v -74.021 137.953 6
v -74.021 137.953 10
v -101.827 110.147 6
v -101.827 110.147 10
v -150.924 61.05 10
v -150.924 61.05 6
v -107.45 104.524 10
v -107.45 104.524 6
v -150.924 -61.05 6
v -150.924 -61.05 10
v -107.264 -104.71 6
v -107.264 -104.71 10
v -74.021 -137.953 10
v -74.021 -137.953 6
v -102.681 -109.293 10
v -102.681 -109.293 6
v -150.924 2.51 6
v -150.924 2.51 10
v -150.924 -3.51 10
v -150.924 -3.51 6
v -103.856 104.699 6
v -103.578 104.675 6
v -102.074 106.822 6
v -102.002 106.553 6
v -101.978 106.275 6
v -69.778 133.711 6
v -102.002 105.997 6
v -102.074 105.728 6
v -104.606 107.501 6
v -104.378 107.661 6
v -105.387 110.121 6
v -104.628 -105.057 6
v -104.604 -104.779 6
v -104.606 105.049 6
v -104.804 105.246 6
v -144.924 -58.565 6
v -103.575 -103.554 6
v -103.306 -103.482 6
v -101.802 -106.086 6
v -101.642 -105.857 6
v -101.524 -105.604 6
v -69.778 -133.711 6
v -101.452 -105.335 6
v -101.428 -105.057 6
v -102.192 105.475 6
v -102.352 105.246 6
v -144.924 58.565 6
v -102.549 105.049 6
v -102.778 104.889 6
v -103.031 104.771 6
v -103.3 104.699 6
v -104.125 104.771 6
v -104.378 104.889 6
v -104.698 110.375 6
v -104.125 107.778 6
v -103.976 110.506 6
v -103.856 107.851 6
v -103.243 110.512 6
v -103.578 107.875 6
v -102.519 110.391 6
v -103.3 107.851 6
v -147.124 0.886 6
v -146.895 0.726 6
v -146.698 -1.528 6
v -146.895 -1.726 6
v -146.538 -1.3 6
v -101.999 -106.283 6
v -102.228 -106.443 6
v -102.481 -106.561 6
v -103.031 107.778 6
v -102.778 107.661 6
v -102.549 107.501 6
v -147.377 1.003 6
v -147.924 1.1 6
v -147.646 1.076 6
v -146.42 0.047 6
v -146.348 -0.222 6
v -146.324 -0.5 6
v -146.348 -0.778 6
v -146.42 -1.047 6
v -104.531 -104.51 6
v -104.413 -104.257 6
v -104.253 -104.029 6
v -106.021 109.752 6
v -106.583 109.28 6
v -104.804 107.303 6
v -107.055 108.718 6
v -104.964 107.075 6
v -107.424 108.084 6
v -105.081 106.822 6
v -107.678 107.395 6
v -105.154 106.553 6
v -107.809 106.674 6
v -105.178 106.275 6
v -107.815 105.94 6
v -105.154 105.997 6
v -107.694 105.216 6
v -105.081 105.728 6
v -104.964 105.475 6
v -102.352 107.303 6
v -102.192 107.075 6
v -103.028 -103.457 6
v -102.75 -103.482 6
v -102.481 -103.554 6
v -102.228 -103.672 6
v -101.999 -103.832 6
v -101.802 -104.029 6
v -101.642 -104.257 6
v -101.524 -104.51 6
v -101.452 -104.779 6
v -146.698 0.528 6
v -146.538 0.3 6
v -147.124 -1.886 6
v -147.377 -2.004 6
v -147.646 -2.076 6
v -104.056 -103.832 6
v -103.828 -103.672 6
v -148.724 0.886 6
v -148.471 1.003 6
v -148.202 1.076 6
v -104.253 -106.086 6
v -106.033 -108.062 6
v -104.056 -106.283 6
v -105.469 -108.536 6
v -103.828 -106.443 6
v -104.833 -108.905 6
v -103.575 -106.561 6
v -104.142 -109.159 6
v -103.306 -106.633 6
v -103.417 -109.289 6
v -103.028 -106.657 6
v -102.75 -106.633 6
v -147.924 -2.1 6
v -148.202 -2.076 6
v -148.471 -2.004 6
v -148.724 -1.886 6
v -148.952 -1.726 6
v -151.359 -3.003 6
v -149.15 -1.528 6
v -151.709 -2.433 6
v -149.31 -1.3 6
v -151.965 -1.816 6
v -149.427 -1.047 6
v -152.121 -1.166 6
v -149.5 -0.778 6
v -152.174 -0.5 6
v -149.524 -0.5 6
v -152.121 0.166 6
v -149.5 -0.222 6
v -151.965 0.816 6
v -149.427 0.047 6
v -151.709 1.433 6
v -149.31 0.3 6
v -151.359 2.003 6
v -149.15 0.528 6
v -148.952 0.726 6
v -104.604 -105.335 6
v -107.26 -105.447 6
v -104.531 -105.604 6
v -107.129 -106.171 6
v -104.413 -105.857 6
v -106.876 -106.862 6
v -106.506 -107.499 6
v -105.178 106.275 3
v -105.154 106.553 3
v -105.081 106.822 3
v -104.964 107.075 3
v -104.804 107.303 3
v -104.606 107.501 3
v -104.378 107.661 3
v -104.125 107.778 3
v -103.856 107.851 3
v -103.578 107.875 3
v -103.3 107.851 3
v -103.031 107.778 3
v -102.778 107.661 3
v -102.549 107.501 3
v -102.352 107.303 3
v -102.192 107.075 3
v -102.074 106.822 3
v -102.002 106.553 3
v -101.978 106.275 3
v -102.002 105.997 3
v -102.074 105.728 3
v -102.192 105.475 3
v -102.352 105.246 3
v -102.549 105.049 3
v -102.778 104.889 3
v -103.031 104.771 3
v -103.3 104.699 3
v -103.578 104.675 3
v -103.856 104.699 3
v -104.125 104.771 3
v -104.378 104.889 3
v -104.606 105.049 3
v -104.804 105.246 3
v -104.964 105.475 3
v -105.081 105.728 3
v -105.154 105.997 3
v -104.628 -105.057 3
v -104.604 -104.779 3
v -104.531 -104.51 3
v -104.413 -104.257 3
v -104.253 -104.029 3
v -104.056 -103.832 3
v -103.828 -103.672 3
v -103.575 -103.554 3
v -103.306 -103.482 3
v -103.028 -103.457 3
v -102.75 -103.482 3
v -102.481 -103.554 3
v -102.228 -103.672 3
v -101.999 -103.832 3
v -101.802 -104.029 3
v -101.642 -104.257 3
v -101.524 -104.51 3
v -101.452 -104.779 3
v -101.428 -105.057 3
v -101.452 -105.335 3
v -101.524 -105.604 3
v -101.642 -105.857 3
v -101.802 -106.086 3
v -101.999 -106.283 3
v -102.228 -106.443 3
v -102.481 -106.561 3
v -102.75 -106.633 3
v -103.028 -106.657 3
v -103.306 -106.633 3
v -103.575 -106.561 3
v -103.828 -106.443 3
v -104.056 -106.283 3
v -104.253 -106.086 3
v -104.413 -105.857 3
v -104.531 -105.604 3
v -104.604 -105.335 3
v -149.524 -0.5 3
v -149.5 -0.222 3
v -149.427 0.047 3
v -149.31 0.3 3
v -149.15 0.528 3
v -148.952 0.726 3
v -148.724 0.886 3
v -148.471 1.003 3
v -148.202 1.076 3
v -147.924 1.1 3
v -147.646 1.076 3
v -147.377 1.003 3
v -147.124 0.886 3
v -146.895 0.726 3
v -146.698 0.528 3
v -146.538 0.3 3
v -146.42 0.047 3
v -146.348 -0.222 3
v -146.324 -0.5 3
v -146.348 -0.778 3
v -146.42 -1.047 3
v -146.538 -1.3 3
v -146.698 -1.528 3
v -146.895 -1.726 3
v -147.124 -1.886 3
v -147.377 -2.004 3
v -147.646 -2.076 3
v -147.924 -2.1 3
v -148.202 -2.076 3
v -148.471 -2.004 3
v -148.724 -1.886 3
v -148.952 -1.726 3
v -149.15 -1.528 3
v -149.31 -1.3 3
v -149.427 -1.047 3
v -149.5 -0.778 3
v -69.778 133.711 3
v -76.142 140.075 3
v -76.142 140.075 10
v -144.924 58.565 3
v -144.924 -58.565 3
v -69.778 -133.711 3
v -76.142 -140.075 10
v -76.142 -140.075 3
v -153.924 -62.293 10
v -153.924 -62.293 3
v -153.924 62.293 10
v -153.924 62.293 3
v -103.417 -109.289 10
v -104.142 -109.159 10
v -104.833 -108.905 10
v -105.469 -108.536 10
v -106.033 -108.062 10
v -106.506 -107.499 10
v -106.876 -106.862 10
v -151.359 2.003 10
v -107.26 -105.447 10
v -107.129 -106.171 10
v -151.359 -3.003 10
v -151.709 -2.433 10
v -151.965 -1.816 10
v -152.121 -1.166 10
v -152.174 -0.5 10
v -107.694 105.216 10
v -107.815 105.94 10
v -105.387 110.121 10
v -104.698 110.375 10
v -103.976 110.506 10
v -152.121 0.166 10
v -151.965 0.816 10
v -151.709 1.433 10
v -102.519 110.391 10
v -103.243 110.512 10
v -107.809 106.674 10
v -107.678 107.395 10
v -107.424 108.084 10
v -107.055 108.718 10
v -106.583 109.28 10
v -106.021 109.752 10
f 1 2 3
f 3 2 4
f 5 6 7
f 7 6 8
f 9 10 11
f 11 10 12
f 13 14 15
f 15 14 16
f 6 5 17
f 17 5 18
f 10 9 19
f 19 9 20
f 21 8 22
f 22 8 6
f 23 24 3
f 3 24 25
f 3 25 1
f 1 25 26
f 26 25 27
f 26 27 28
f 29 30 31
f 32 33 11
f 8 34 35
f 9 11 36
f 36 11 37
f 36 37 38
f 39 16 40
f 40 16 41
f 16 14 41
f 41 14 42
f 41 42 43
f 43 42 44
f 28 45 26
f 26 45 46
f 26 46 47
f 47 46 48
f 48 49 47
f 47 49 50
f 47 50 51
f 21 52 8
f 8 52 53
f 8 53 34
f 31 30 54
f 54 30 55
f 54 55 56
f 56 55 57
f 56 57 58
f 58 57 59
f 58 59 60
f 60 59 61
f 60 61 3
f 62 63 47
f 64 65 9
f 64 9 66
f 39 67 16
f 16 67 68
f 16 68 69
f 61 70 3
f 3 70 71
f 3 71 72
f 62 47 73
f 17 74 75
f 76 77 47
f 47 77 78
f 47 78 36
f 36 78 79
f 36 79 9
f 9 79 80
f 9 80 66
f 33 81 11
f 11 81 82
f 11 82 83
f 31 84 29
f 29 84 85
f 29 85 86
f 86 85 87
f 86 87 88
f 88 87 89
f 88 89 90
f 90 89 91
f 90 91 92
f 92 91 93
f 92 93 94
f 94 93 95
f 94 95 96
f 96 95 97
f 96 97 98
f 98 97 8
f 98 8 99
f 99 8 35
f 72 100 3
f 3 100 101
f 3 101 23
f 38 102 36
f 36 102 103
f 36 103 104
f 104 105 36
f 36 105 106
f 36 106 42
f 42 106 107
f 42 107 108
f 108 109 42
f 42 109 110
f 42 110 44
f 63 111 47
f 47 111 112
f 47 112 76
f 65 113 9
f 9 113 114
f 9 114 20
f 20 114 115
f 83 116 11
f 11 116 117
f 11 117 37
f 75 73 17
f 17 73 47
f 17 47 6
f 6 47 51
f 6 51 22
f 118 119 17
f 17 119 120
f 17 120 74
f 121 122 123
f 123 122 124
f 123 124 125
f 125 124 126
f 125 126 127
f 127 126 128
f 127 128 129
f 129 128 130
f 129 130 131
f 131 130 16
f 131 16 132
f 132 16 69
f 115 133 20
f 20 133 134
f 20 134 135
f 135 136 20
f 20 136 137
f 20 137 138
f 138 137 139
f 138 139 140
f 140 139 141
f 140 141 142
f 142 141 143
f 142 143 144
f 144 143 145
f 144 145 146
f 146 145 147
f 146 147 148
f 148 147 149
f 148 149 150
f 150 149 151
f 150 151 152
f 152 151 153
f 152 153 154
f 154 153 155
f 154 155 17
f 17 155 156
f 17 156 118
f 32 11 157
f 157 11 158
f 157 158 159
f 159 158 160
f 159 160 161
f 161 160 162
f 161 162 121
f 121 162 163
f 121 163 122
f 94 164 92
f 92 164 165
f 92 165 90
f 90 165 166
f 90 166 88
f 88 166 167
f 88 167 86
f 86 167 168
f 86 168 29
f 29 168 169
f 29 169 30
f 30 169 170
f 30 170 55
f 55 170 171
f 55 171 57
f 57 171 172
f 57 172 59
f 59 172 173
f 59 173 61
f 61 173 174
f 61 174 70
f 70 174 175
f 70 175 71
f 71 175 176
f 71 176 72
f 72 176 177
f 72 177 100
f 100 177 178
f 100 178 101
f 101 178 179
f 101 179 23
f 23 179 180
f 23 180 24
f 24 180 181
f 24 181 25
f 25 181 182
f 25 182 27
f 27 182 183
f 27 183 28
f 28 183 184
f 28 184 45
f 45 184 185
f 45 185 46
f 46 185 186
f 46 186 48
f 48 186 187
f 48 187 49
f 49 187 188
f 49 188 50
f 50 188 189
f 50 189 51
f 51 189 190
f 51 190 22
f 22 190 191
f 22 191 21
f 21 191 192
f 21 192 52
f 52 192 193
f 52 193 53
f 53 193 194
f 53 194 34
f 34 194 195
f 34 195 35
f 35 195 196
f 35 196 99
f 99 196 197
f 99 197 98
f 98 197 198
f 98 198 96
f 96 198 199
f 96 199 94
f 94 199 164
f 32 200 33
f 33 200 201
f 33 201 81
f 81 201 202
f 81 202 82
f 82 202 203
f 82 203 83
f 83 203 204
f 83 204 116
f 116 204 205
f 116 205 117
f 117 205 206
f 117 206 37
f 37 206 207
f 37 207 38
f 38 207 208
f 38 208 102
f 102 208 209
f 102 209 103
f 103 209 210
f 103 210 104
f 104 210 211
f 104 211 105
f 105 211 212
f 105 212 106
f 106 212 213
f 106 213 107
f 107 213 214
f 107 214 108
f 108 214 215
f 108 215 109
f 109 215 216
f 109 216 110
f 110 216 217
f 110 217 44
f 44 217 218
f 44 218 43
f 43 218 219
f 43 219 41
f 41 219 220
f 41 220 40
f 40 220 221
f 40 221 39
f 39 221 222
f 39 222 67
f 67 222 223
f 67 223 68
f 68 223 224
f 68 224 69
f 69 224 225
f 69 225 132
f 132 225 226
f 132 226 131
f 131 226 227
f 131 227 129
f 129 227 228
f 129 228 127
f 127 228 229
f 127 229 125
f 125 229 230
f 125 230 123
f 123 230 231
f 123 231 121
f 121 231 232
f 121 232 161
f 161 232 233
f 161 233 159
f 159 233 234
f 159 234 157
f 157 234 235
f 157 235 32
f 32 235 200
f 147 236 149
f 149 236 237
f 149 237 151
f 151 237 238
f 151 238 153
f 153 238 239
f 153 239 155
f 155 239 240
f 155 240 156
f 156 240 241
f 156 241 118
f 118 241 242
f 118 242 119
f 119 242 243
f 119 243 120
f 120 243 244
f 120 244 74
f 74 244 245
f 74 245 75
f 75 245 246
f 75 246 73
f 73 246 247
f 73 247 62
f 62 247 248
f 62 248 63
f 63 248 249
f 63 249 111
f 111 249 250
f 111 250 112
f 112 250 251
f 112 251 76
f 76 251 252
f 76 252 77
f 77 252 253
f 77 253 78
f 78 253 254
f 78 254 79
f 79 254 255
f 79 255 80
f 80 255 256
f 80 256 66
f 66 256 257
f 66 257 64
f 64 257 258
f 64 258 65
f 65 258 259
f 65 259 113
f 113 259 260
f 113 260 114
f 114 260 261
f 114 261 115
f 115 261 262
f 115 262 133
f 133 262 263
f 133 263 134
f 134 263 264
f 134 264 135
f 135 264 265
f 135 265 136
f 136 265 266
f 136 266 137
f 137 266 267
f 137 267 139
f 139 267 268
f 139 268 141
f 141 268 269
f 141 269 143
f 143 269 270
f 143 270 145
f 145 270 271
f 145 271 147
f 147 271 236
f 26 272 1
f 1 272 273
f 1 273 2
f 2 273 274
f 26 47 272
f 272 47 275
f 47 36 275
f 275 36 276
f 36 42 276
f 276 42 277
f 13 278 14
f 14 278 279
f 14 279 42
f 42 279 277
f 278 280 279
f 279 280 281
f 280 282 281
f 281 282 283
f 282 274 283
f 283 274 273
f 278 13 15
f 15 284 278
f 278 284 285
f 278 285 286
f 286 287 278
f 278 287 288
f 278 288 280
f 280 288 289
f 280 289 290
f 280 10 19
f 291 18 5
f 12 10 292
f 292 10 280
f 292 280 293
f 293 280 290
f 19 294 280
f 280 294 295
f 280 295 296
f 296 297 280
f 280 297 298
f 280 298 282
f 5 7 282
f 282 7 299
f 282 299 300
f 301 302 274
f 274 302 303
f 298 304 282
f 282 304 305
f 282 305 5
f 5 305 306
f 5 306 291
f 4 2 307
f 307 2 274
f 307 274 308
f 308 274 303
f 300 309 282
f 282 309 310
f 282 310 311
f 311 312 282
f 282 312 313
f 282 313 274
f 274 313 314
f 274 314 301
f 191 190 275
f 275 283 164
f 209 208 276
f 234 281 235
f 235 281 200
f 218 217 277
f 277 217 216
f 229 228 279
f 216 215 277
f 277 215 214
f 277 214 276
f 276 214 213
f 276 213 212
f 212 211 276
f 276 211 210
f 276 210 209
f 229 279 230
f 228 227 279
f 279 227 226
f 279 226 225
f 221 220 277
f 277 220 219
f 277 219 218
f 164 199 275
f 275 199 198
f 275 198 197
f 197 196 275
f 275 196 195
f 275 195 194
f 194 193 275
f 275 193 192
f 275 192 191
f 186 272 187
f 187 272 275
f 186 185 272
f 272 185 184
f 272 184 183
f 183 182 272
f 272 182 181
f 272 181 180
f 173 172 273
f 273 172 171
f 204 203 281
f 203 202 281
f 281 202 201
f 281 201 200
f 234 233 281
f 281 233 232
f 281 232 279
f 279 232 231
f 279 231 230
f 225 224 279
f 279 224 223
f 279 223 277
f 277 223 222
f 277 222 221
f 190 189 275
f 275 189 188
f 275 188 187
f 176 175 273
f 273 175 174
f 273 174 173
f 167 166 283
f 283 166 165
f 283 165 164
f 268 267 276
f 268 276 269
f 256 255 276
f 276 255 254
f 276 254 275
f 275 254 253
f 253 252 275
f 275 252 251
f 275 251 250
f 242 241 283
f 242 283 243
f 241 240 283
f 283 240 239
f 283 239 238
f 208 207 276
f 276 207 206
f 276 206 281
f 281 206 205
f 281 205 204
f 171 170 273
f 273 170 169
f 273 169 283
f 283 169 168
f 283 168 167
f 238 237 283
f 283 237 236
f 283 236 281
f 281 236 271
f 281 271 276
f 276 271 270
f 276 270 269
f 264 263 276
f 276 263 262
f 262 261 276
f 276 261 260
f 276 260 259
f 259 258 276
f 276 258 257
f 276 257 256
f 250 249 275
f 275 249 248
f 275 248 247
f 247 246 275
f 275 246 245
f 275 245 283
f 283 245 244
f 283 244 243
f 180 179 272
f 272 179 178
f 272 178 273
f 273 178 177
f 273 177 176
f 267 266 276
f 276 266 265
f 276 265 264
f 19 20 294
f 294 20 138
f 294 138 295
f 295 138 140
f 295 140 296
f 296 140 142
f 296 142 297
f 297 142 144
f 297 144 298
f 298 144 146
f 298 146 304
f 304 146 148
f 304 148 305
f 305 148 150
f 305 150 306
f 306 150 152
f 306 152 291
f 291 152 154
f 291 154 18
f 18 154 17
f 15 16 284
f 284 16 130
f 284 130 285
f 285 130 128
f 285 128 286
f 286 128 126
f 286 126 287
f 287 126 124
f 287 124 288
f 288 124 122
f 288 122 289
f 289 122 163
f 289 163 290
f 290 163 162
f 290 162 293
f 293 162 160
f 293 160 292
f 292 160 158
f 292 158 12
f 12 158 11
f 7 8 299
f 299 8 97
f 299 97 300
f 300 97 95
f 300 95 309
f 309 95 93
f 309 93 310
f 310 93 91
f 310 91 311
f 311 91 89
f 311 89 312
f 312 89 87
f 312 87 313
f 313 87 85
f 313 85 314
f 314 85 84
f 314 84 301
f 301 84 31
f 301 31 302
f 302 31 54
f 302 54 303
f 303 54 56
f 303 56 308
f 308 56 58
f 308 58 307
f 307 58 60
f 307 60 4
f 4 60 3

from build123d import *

# Parameters (mm, degrees)
SHEET_EXTRUSION_DEPTH           = 3
ESQUISSE_TROU_ROUE_DROITE_W     = 70
ESQUISSE_TROU_ROUE_DROITE_H     = 40
LEFTWHEEL_EXTRUSION_DEPTH       = 219.408952171
ESQUISSE20_W                    = 30
ESQUISSE20_H                    = 17
LEFTFREEWHEEL_HOLE_DEPTH        = 219.408952171
LEFTWHEEL_FIX_OUTLINE_R         = 2.5
LEFTWHEEL_FIX_DEPTH             = 3
BALL_EXTRUSION_OUTLINE_R        = 12
BALL_EXTRUSION_DEPTH            = 3
ARROUND_FIX_EXTRUSION_OUTLINE_R = 2.5
ARROUND_FIX_EXTRUSION_DEPTH     = 3
LEFT_PROFILE_HOLE_OUTLINE_R     = 2.5
LEFT_PROFILE_HOLE_DEPTH         = 3
LEFT_FIX_MECA_SKETCH_R          = 1.5
LEFT_FIX_MECA_EXTRUSION_DEPTH   = 219.408952171
LEFT_CODER_HOLES_SKETCH_R       = 1.5
LEFT_CODER_HOLES_DEPTH          = 219.408952171
BOTTOM_FIX_HOLES_SKETCH_R       = 1.5
RIGHT_FIX_MECA_HOLES_DEPTH      = 219.408952171
SKETCH1_R                       = 1.6
BOSS_EXTRUDE1_DEPTH             = 3
BOSS_EXTRUDE2_DEPTH             = 4
SKETCH2_W                       = 3
SKETCH2_H                       = 308.847763108
CUT_EXTRUDE1_DEPTH              = 269.911228609
SKETCH3_R                       = 4.25
CUT_EXTRUDE4_DEPTH              = 209.157310334


# Read off the part's stored shape, not the designer's step: LeftWheel-Fix, Ball-Extrusion, Arround-Fix-Extrusion, Left-Profile-Hole
with BuildPart() as part:
    # Sheet-Sketch → Sheet-Extrusion (new body)
    with BuildSketch(Plane.XY):
        Polygon((-62.5, 154.423881554), (62.5, 154.423881554), (65.5, 154.423881554), (65.5, 109.423881554), (39, 75), (20, 75), (20, -75), (39, -75), (65.5, -109.423881554), (65.5, -154.423881554), (62.5, -154.423881554), (-62.5, -154.423881554), (-154.423881554, -62.5), (-154.423881554, 62.5), align=None)
    extrude(amount=SHEET_EXTRUSION_DEPTH)

    # Esquisse Trou Roue Droite → LeftWheel-Extrusion (cut, through all)
    with BuildSketch(Plane.XY.offset(3)):
        with Locations((1.237734866, 107.423881554)):
            Rectangle(ESQUISSE_TROU_ROUE_DROITE_W, ESQUISSE_TROU_ROUE_DROITE_H)
    leftwheel_extrusion = extrude(amount=-LEFTWHEEL_EXTRUSION_DEPTH, mode=Mode.SUBTRACT)

    # Esquisse20 → LeftFreeWheel-Hole (cut, through all)
    with BuildSketch(Plane.XY.offset(3)):
        with Locations((1.402864765, 135.923881554)):
            Rectangle(ESQUISSE20_W, ESQUISSE20_H)
    leftfreewheel_hole = extrude(amount=-LEFTFREEWHEEL_HOLE_DEPTH, mode=Mode.SUBTRACT)

    # LeftWheel-Fix outline → LeftWheel-Fix (cut)
    with BuildSketch(Plane.XY):
        with Locations((0.388540939, 40)):
            Circle(LEFTWHEEL_FIX_OUTLINE_R)
    leftwheel_fix = extrude(amount=LEFTWHEEL_FIX_DEPTH, mode=Mode.SUBTRACT)

    # Ball-Extrusion outline → Ball-Extrusion (cut)
    with BuildSketch(Plane.XY):
        with Locations((-114.423881554, 0)):
            Circle(BALL_EXTRUSION_OUTLINE_R)
    extrude(amount=BALL_EXTRUSION_DEPTH, mode=Mode.SUBTRACT)

    # Arround-Fix-Extrusion outline → Arround-Fix-Extrusion (cut)
    with BuildSketch(Plane.XY):
        with Locations((60.248995228, 148.862139245)):
            Circle(ARROUND_FIX_EXTRUSION_OUTLINE_R)
        with Locations((-60.248995228, 148.862139245)):
            Circle(ARROUND_FIX_EXTRUSION_OUTLINE_R)
        with Locations((-148.862139245, 60.248995228)):
            Circle(ARROUND_FIX_EXTRUSION_OUTLINE_R)
    arround_fix_extrusion = extrude(amount=ARROUND_FIX_EXTRUSION_DEPTH, mode=Mode.SUBTRACT)

    # Left-Profile-Hole outline → Left-Profile-Hole (cut)
    with BuildSketch(Plane.XY):
        with Locations((-52.5, 144.423881554)):
            Circle(LEFT_PROFILE_HOLE_OUTLINE_R)
        with Locations((52.5, 144.423881554)):
            Circle(LEFT_PROFILE_HOLE_OUTLINE_R)
    left_profile_hole = extrude(amount=LEFT_PROFILE_HOLE_DEPTH, mode=Mode.SUBTRACT)

    # Left-Fix-Meca-Sketch → Left-Fix-Meca-Extrusion (cut, through all)
    with BuildSketch(Plane.XY.offset(3)):
        with Locations((27.801900038, 82.423881554)):
            Circle(LEFT_FIX_MECA_SKETCH_R)
        with Locations((58.5, 129.423881554)):
            Circle(LEFT_FIX_MECA_SKETCH_R)
    left_fix_meca_extrusion = extrude(amount=-LEFT_FIX_MECA_EXTRUSION_DEPTH, mode=Mode.SUBTRACT)

    # Left-Coder-Holes-Sketch → Left-Coder-Holes (cut, through all)
    with BuildSketch(Plane.XY.offset(3)):
        with Locations((-28.724826295, 131.423881554)):
            Circle(LEFT_CODER_HOLES_SKETCH_R)
        with Locations((31.275173705, 131.423881554)):
            Circle(LEFT_CODER_HOLES_SKETCH_R)
    left_coder_holes = extrude(amount=-LEFT_CODER_HOLES_DEPTH, mode=Mode.SUBTRACT)

    # Bottom-Fix-Holes-Sketch → Right-Fix-Meca-Holes (cut, through all)
    with BuildSketch(Plane.XY.offset(3)):
        with Locations((-104.353414534, 105.499399209)):
            Circle(BOTTOM_FIX_HOLES_SKETCH_R)
        with Locations((-85.741045982, 80.490778132)):
            Circle(BOTTOM_FIX_HOLES_SKETCH_R)
    right_fix_meca_holes = extrude(amount=-RIGHT_FIX_MECA_HOLES_DEPTH, mode=Mode.SUBTRACT)

    # Symetry-All-Pieces: LeftWheel-Extrusion, LeftFreeWheel-Hole, LeftWheel-Fix, Arround-Fix-Extrusion, Left-Profile-Hole, Left-Fix-Meca-Extrusion, Left-Coder-Holes, Right-Fix-Meca-Holes across plane
    add(leftwheel_extrusion.mirror(Plane.ZX), mode=Mode.SUBTRACT)
    add(leftfreewheel_hole.mirror(Plane.ZX), mode=Mode.SUBTRACT)
    add(leftwheel_fix.mirror(Plane.ZX), mode=Mode.SUBTRACT)
    add(arround_fix_extrusion.mirror(Plane.ZX), mode=Mode.SUBTRACT)
    add(left_profile_hole.mirror(Plane.ZX), mode=Mode.SUBTRACT)
    add(left_fix_meca_extrusion.mirror(Plane.ZX), mode=Mode.SUBTRACT)
    add(left_coder_holes.mirror(Plane.ZX), mode=Mode.SUBTRACT)
    add(right_fix_meca_holes.mirror(Plane.ZX), mode=Mode.SUBTRACT)

    # Sketch1 → Boss-Extrude1 (add)
    with BuildSketch(Plane.XY.offset(3)):
        Polygon((-76.142135624, 140.074639149), (-69.778174593, 133.710678119), (-144.923881554, 58.564971157), (-144.923881554, -58.564971157), (-69.778174593, -133.710678119), (-76.142135624, -140.074639149), (-153.923881554, -62.292893219), (-153.923881554, 62.292893219), align=None)
        with Locations((-147.923881554, -0.5)):
            Circle(SKETCH1_R, mode=Mode.SUBTRACT)
        with Locations(Location((-103.027804769, -105.05724202, 0), (0, 0, 138.844831023))):
            Circle(SKETCH1_R, mode=Mode.SUBTRACT)
        with Locations(Location((-103.577878734, 106.274935009, 0), (0, 0, 160.535415734))):
            Circle(SKETCH1_R, mode=Mode.SUBTRACT)
    extrude(amount=BOSS_EXTRUDE1_DEPTH)

    # Sketch4 → Boss-Extrude2 (add)
    with BuildSketch(Plane.XY.offset(6)):
        Polygon((-74.02081528, 137.953318806), (-76.142135624, 140.074639149), (-153.923881554, 62.292893219), (-153.923881554, -62.292893219), (-76.142135624, -140.074639149), (-74.02081528, -137.953318806), (-150.923881554, -61.050252532), (-150.923881554, 61.050252532), align=None)
    extrude(amount=BOSS_EXTRUDE2_DEPTH)

    # Sketch2 → Cut-Extrude1 (cut, through all)
    with BuildSketch(Plane.ZY.offset(154.423881554)):
        with Locations((1.5, 0)):
            Rectangle(SKETCH2_W, SKETCH2_H)
    extrude(amount=-CUT_EXTRUDE1_DEPTH, mode=Mode.SUBTRACT)

    # Sketch3 → Cut-Extrude4 (cut, through all)
    with BuildSketch(Plane.XY.offset(6)):
        with Locations((-147.923881554, -0.5)):
            Circle(SKETCH3_R)
        with Locations((-103.577878734, 106.274935009)):
            Circle(SKETCH3_R)
        with Locations((-103.027804769, -105.05724202)):
            Circle(SKETCH3_R)
    extrude(amount=CUT_EXTRUDE4_DEPTH, mode=Mode.SUBTRACT)


solid = part.part
